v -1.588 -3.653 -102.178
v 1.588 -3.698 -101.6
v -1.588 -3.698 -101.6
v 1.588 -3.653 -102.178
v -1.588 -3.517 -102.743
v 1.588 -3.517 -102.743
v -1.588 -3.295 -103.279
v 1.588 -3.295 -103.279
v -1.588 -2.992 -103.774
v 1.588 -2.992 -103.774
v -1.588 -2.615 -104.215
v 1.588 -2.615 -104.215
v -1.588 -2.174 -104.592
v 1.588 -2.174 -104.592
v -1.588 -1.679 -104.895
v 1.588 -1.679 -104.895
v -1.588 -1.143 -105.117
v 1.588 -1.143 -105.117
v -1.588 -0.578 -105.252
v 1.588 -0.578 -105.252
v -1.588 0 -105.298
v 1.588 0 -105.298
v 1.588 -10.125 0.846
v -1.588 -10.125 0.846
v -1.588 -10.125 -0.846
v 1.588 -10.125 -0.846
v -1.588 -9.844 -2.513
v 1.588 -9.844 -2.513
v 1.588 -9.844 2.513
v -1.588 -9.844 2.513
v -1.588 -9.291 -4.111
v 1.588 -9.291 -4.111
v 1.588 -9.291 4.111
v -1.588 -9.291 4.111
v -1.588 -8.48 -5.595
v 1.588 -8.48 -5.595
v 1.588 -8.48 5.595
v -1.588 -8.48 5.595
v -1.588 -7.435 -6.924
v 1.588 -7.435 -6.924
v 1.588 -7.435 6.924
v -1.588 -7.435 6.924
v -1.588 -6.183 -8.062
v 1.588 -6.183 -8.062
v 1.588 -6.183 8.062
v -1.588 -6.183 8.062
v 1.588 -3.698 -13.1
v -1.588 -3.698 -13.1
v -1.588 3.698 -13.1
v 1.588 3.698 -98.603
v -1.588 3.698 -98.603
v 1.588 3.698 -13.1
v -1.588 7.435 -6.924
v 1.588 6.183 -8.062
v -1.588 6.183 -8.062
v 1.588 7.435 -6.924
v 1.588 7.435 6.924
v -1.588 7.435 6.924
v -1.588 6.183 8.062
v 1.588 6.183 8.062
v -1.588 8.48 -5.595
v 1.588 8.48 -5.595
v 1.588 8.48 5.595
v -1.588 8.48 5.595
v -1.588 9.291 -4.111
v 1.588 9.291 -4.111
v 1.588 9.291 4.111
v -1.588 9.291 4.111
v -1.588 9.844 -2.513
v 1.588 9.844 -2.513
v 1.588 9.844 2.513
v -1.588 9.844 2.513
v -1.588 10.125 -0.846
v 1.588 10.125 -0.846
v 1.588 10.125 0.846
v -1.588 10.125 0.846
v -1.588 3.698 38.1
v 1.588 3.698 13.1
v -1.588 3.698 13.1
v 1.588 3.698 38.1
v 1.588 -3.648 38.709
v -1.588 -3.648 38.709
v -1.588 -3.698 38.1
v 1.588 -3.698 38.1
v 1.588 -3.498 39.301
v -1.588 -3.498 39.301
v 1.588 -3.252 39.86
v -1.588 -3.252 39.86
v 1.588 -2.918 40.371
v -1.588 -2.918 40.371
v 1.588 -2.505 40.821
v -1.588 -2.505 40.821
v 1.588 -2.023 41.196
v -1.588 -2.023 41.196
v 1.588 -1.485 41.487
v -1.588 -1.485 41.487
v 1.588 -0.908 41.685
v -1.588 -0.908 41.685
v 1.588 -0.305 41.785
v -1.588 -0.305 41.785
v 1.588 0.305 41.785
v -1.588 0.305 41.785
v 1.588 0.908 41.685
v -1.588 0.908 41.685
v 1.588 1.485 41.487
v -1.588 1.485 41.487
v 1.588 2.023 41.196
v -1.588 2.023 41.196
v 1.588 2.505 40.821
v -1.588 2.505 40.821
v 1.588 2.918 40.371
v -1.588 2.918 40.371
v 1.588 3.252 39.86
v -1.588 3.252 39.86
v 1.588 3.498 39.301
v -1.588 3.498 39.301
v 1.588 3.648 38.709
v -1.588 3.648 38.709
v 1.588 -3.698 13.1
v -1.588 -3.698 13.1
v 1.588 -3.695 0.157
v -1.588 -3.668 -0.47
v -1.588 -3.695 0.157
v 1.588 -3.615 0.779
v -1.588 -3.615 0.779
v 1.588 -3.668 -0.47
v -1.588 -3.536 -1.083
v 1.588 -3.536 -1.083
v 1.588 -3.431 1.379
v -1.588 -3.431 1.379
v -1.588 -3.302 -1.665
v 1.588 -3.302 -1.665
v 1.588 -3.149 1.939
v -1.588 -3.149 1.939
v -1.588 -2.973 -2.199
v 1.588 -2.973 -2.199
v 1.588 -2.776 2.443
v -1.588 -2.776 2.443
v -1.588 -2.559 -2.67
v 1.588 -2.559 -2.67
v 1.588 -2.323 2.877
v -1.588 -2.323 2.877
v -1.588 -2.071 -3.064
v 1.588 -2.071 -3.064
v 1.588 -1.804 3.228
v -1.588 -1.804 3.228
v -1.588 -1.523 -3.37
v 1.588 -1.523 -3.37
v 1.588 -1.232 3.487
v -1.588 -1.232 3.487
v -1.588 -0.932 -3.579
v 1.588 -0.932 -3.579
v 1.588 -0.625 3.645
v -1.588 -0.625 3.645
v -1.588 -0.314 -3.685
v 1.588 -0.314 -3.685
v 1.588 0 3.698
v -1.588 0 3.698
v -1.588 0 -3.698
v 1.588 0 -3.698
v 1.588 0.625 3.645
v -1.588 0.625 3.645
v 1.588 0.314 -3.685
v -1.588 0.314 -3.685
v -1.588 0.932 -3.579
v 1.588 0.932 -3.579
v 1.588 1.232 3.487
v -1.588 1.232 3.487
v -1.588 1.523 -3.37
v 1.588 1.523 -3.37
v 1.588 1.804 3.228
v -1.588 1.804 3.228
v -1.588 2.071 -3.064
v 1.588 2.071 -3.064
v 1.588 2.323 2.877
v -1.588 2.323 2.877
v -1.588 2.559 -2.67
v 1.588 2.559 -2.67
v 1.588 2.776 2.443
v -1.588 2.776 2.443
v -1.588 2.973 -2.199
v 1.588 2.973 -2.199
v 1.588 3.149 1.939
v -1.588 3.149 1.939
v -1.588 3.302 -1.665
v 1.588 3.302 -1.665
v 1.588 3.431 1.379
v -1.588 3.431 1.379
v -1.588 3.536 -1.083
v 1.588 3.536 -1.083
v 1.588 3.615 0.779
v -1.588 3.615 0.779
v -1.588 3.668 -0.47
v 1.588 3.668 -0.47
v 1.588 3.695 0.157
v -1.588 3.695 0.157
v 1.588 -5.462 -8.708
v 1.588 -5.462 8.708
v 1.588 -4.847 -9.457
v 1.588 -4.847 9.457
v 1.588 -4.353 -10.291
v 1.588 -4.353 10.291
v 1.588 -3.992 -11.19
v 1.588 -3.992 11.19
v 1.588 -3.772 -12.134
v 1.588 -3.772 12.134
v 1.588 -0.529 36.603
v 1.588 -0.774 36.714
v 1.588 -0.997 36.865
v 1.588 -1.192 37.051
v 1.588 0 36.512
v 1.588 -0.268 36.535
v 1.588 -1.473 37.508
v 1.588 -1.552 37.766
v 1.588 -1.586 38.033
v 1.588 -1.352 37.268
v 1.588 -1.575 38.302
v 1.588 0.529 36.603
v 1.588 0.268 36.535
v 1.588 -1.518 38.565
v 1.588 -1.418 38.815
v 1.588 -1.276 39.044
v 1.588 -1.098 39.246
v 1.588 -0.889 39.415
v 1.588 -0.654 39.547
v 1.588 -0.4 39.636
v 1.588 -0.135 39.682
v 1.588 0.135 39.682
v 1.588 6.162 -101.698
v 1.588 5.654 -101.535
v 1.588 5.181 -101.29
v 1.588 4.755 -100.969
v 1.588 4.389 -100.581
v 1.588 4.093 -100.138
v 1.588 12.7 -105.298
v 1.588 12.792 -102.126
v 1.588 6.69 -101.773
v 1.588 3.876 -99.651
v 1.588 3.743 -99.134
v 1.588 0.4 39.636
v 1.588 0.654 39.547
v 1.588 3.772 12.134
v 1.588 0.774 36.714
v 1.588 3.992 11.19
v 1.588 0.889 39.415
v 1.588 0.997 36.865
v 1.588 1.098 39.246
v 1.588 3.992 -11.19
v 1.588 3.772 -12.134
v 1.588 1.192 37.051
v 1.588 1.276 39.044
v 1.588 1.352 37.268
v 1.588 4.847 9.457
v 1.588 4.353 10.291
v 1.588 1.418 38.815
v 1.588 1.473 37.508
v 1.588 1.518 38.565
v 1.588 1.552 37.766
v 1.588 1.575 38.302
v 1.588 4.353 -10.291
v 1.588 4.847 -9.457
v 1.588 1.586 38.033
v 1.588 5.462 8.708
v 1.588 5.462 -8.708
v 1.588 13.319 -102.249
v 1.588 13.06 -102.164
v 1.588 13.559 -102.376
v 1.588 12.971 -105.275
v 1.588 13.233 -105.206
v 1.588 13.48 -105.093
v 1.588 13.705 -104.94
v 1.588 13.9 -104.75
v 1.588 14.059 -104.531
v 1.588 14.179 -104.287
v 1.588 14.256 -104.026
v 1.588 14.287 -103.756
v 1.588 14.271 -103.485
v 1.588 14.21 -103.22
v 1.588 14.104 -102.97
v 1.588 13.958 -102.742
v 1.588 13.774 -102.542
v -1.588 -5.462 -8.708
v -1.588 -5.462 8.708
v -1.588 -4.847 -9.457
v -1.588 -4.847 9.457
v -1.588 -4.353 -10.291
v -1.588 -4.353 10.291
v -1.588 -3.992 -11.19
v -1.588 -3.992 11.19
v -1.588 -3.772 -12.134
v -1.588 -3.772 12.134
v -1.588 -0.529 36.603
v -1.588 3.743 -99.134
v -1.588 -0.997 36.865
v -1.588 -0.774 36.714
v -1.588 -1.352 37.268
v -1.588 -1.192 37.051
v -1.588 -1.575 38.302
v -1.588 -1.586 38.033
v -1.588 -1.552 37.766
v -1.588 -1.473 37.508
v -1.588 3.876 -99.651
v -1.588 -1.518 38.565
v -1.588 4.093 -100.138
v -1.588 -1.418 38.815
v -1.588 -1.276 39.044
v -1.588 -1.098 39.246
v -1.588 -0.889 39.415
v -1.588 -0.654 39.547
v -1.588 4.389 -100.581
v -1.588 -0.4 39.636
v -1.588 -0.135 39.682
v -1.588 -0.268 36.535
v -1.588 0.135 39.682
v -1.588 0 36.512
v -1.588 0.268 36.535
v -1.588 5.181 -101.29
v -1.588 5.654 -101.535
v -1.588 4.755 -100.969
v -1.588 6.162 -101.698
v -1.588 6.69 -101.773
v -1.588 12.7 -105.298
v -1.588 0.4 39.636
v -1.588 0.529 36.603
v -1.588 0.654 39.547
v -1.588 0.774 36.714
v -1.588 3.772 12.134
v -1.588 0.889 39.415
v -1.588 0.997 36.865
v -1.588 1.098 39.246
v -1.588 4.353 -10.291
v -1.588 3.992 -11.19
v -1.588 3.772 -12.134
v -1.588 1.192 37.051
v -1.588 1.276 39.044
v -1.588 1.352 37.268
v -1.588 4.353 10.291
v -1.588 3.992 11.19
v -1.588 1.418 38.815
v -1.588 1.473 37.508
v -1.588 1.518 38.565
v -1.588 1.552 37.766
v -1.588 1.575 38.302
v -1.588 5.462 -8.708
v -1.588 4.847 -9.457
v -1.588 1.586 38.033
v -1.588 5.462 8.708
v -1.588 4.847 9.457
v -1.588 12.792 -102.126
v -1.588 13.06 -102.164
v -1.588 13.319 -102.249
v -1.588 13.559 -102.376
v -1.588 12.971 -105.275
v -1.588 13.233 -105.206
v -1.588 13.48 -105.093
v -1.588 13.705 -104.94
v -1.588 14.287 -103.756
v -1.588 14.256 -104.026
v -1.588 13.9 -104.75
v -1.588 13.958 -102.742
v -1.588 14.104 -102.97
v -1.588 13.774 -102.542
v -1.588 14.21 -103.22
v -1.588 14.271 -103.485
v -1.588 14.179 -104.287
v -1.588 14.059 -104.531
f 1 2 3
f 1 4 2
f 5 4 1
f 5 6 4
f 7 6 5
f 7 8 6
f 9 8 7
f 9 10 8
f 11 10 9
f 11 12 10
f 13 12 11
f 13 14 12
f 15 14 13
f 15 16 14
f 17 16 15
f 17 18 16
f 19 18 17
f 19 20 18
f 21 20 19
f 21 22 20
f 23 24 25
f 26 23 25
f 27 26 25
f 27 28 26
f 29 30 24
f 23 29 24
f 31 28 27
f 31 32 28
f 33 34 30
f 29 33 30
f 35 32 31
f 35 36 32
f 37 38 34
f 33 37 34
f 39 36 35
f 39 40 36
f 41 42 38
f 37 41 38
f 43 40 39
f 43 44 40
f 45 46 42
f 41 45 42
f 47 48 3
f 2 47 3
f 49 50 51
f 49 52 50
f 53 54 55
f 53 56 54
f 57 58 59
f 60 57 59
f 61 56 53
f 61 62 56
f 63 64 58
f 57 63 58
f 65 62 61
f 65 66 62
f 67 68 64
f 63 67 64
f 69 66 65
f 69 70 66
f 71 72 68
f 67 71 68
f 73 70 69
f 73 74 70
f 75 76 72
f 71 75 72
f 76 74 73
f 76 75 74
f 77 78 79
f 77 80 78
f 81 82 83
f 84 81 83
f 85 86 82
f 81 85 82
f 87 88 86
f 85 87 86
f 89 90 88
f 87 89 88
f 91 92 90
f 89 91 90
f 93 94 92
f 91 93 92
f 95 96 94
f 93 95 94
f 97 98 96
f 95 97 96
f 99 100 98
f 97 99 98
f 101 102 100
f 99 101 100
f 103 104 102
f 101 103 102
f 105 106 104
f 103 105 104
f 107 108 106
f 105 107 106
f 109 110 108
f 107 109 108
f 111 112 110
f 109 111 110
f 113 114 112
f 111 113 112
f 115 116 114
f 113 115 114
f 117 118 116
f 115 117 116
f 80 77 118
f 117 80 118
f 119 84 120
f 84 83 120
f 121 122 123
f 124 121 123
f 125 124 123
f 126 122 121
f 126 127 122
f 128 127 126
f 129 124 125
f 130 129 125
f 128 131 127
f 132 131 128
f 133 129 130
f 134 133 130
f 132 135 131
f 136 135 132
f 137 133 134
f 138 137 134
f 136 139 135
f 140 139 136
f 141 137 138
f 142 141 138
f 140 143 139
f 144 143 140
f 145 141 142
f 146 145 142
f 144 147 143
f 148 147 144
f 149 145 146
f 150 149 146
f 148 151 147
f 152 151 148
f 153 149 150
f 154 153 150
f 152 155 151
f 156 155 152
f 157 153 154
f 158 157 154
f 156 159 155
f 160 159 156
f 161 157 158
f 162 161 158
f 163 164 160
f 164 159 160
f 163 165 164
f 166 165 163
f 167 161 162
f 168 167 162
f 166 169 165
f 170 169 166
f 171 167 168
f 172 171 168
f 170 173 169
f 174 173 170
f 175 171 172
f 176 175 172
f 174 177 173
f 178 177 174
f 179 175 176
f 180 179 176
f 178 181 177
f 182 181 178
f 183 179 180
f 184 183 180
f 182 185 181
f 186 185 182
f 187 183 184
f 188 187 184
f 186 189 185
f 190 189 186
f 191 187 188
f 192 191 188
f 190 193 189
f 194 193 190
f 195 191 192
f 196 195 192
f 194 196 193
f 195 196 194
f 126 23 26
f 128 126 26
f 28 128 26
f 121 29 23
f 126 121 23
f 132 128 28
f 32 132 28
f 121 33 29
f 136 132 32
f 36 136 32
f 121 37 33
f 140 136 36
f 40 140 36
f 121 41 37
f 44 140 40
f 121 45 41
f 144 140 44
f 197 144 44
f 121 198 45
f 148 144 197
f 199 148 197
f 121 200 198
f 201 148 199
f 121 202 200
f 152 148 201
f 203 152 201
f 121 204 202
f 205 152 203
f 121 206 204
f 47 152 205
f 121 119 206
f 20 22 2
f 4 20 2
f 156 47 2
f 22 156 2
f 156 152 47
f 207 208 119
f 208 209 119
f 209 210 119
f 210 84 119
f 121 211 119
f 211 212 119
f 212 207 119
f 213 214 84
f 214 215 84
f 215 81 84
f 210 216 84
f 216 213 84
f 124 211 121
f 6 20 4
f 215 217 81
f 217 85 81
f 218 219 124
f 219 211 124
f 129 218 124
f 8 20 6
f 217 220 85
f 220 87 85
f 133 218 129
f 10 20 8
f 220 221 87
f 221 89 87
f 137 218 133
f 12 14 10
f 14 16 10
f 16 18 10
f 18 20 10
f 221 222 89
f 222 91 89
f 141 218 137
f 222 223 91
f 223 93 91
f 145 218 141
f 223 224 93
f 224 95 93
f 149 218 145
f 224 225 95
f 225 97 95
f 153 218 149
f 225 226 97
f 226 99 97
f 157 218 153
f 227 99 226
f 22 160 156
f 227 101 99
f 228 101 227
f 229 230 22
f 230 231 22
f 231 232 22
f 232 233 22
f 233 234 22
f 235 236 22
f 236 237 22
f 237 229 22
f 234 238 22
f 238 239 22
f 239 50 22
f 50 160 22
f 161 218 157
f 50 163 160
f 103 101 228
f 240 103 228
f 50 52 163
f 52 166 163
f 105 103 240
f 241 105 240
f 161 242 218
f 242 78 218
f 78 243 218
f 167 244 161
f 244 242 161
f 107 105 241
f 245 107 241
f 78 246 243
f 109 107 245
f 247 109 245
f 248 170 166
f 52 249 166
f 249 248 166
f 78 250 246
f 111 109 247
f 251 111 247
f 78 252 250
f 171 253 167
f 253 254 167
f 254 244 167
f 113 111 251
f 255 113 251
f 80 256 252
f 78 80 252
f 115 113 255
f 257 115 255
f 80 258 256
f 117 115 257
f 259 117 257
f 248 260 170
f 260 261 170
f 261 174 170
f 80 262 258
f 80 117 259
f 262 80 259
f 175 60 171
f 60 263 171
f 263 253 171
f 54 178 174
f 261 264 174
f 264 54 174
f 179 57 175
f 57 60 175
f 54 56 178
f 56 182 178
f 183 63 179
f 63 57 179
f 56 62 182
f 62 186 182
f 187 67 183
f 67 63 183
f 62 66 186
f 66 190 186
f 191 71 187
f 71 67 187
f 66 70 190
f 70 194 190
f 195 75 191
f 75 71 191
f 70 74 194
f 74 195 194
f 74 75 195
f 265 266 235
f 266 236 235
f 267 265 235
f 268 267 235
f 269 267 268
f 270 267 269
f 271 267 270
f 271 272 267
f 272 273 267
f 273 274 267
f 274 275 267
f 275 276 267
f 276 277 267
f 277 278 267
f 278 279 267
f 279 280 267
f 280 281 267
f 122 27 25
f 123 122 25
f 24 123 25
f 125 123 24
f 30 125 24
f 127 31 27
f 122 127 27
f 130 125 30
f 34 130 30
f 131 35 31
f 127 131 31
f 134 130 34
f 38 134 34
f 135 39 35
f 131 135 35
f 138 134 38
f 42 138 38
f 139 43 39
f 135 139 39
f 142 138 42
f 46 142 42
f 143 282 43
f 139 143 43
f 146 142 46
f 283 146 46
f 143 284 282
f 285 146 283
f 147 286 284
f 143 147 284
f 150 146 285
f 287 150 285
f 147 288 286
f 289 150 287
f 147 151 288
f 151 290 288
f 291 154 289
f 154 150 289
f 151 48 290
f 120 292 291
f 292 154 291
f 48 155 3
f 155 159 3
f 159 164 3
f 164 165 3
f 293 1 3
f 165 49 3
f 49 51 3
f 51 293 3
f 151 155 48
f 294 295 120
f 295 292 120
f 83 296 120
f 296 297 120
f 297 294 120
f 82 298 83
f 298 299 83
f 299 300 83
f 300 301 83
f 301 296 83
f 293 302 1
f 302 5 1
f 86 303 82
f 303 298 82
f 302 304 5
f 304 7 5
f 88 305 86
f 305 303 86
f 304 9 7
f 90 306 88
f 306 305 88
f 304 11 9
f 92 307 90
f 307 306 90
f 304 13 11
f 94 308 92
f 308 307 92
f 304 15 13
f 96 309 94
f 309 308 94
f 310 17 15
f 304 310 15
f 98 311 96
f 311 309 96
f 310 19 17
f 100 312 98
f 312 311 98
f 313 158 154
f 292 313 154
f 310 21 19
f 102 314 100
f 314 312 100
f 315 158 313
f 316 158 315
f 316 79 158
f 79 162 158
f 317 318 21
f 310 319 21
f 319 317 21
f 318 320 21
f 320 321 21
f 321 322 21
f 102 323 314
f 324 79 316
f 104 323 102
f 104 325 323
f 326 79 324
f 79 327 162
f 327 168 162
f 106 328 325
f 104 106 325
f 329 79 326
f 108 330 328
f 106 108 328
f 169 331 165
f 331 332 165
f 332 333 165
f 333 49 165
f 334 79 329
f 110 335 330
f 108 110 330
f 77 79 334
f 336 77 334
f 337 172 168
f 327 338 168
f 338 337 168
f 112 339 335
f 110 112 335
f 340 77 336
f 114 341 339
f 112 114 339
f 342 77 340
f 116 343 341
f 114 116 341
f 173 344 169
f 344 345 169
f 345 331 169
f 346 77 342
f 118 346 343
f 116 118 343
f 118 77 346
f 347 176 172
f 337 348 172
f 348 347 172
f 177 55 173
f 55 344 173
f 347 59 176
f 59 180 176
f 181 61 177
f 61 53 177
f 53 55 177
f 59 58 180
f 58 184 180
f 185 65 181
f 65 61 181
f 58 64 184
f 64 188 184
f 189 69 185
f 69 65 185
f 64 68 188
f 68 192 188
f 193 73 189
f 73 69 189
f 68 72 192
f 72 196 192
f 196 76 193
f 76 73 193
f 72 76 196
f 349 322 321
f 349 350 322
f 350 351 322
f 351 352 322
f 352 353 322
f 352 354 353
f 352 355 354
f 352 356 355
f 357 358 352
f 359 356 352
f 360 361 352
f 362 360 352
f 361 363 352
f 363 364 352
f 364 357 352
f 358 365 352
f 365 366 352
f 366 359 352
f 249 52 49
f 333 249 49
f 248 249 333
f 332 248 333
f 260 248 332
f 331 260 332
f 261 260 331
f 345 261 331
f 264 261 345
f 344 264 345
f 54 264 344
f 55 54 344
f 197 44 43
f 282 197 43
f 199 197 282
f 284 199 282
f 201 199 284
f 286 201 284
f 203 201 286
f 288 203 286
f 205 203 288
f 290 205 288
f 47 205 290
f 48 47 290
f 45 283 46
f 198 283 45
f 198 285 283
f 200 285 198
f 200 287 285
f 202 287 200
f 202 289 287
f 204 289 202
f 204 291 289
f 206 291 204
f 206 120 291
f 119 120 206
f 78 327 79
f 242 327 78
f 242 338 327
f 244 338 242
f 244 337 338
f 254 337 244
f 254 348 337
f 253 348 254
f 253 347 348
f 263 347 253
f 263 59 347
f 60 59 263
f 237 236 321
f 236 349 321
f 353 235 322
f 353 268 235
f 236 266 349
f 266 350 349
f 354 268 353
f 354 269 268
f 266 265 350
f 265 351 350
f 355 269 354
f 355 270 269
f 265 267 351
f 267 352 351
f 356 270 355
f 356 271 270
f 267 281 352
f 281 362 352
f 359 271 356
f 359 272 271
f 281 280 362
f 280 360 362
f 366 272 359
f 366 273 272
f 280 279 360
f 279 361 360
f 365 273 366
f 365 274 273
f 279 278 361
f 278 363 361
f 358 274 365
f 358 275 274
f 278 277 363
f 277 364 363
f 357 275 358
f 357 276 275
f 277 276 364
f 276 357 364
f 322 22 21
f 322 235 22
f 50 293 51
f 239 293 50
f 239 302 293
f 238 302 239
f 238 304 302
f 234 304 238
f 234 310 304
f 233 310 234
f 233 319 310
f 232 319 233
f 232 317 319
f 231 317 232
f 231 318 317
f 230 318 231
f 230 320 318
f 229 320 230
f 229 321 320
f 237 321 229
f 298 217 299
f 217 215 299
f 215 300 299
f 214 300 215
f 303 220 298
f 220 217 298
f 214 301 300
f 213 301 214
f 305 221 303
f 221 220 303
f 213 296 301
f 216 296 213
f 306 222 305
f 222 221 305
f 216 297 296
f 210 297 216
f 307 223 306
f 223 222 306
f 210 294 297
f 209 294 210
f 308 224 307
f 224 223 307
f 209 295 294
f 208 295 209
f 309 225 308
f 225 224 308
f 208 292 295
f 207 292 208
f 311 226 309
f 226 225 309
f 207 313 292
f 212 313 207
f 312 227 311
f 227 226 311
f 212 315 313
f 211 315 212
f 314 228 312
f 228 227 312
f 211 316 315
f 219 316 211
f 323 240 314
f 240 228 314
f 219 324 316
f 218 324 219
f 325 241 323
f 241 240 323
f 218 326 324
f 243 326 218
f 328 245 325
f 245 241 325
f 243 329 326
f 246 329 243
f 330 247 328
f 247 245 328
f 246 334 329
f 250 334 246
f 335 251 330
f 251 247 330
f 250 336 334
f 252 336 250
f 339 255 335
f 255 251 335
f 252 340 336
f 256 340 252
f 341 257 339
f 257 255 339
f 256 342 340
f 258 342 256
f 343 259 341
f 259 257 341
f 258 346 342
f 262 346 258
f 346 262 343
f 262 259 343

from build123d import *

# Parameters (mm, degrees)
SKETCH1_R               = 3.698033758
BOSS_EXTRUDE1_DEPTH     = 1.5875
FILLET1_R               = 6.35
BOSS_EXTRUDE2_DEPTH     = 1.5875
FILLET2_R               = 3.175
CUT_EXTRUDE1_DEPTH      = 107.31034378
CUT_EXTRUDE1_DEPTH_BACK = 107.31034378
SKETCH3_R               = 1.5875


with BuildPart() as part:
    # Sketch1 → Boss-Extrude1 (new, symmetric)
    with BuildSketch(Plane(origin=(0, 0, 0), x_dir=(0, 0, -1), z_dir=(1, 0, 0))):
        with BuildLine():
            ThreePointArc((-9.463093909, -3.698033758), (0, -10.16), (9.463093909, -3.698033758))
            Line((9.463093909, -3.698033758), (101.6, -3.698033758))
            ThreePointArc((101.6, -3.698033758), (105.298033758, 0), (101.6, 3.698033758))
            Line((101.6, 3.698033758), (9.463093909, 3.698033758))
            ThreePointArc((9.463093909, 3.698033758), (0, 10.16), (-9.463093909, 3.698033758))
            Line((-9.463093909, 3.698033758), (-38.1, 3.698033758))
            ThreePointArc((-38.1, 3.698033758), (-41.798033758, 0), (-38.1, -3.698033758))
            Line((-38.1, -3.698033758), (-9.463093909, -3.698033758))
        make_face()
        Circle(SKETCH1_R, mode=Mode.SUBTRACT)
    extrude(amount=BOSS_EXTRUDE1_DEPTH, both=True)

    # Fillet1
    fillet1_edges = [part.edges().sort_by_distance(p)[0] for p in [
        (0, 3.698033758, -9.463093909),
        (0, -3.698033758, -9.463093909),
        (0, -3.698033758, 9.463093909),
        (0, 3.698033758, 9.463093909),
    ]]
    fillet(fillet1_edges, radius=FILLET1_R)

    # Sketch2 → Boss-Extrude2 (add, symmetric)
    with BuildSketch(Plane(origin=(0, 0, 0), x_dir=(0, 0, -1), z_dir=(1, 0, 0))):
        with BuildLine():
            Line((105.298033758, 0), (105.298033758, 12.7))
            ThreePointArc((105.298033758, 12.7), (103.756361287, 14.286838394), (102.125679632, 12.79161686))
            Line((102.125679632, 12.79161686), (101.6, 3.698033758))
            ThreePointArc((101.6, 3.698033758), (104.214904747, 2.614904747), (105.298033758, 0))
        make_face()
    extrude(amount=BOSS_EXTRUDE2_DEPTH, both=True)

    # Fillet2
    fillet2_edges = [part.edges().sort_by_distance(p)[0] for p in [
        (0, 3.698033758, -101.6),
    ]]
    fillet(fillet2_edges, radius=FILLET2_R)

    # Sketch3 → Cut-Extrude1 (cut, two sides: drawn at the far end of the back side and taken through both)
    with BuildSketch(Plane(origin=(1.5875, 0, 0), x_dir=(0, 0, -1), z_dir=(1, 0, 0)).offset(-CUT_EXTRUDE1_DEPTH_BACK)):
        with Locations((-38.1, 0)):
            Circle(SKETCH3_R)
    extrude(amount=CUT_EXTRUDE1_DEPTH + CUT_EXTRUDE1_DEPTH_BACK, mode=Mode.SUBTRACT)


solid = part.part
